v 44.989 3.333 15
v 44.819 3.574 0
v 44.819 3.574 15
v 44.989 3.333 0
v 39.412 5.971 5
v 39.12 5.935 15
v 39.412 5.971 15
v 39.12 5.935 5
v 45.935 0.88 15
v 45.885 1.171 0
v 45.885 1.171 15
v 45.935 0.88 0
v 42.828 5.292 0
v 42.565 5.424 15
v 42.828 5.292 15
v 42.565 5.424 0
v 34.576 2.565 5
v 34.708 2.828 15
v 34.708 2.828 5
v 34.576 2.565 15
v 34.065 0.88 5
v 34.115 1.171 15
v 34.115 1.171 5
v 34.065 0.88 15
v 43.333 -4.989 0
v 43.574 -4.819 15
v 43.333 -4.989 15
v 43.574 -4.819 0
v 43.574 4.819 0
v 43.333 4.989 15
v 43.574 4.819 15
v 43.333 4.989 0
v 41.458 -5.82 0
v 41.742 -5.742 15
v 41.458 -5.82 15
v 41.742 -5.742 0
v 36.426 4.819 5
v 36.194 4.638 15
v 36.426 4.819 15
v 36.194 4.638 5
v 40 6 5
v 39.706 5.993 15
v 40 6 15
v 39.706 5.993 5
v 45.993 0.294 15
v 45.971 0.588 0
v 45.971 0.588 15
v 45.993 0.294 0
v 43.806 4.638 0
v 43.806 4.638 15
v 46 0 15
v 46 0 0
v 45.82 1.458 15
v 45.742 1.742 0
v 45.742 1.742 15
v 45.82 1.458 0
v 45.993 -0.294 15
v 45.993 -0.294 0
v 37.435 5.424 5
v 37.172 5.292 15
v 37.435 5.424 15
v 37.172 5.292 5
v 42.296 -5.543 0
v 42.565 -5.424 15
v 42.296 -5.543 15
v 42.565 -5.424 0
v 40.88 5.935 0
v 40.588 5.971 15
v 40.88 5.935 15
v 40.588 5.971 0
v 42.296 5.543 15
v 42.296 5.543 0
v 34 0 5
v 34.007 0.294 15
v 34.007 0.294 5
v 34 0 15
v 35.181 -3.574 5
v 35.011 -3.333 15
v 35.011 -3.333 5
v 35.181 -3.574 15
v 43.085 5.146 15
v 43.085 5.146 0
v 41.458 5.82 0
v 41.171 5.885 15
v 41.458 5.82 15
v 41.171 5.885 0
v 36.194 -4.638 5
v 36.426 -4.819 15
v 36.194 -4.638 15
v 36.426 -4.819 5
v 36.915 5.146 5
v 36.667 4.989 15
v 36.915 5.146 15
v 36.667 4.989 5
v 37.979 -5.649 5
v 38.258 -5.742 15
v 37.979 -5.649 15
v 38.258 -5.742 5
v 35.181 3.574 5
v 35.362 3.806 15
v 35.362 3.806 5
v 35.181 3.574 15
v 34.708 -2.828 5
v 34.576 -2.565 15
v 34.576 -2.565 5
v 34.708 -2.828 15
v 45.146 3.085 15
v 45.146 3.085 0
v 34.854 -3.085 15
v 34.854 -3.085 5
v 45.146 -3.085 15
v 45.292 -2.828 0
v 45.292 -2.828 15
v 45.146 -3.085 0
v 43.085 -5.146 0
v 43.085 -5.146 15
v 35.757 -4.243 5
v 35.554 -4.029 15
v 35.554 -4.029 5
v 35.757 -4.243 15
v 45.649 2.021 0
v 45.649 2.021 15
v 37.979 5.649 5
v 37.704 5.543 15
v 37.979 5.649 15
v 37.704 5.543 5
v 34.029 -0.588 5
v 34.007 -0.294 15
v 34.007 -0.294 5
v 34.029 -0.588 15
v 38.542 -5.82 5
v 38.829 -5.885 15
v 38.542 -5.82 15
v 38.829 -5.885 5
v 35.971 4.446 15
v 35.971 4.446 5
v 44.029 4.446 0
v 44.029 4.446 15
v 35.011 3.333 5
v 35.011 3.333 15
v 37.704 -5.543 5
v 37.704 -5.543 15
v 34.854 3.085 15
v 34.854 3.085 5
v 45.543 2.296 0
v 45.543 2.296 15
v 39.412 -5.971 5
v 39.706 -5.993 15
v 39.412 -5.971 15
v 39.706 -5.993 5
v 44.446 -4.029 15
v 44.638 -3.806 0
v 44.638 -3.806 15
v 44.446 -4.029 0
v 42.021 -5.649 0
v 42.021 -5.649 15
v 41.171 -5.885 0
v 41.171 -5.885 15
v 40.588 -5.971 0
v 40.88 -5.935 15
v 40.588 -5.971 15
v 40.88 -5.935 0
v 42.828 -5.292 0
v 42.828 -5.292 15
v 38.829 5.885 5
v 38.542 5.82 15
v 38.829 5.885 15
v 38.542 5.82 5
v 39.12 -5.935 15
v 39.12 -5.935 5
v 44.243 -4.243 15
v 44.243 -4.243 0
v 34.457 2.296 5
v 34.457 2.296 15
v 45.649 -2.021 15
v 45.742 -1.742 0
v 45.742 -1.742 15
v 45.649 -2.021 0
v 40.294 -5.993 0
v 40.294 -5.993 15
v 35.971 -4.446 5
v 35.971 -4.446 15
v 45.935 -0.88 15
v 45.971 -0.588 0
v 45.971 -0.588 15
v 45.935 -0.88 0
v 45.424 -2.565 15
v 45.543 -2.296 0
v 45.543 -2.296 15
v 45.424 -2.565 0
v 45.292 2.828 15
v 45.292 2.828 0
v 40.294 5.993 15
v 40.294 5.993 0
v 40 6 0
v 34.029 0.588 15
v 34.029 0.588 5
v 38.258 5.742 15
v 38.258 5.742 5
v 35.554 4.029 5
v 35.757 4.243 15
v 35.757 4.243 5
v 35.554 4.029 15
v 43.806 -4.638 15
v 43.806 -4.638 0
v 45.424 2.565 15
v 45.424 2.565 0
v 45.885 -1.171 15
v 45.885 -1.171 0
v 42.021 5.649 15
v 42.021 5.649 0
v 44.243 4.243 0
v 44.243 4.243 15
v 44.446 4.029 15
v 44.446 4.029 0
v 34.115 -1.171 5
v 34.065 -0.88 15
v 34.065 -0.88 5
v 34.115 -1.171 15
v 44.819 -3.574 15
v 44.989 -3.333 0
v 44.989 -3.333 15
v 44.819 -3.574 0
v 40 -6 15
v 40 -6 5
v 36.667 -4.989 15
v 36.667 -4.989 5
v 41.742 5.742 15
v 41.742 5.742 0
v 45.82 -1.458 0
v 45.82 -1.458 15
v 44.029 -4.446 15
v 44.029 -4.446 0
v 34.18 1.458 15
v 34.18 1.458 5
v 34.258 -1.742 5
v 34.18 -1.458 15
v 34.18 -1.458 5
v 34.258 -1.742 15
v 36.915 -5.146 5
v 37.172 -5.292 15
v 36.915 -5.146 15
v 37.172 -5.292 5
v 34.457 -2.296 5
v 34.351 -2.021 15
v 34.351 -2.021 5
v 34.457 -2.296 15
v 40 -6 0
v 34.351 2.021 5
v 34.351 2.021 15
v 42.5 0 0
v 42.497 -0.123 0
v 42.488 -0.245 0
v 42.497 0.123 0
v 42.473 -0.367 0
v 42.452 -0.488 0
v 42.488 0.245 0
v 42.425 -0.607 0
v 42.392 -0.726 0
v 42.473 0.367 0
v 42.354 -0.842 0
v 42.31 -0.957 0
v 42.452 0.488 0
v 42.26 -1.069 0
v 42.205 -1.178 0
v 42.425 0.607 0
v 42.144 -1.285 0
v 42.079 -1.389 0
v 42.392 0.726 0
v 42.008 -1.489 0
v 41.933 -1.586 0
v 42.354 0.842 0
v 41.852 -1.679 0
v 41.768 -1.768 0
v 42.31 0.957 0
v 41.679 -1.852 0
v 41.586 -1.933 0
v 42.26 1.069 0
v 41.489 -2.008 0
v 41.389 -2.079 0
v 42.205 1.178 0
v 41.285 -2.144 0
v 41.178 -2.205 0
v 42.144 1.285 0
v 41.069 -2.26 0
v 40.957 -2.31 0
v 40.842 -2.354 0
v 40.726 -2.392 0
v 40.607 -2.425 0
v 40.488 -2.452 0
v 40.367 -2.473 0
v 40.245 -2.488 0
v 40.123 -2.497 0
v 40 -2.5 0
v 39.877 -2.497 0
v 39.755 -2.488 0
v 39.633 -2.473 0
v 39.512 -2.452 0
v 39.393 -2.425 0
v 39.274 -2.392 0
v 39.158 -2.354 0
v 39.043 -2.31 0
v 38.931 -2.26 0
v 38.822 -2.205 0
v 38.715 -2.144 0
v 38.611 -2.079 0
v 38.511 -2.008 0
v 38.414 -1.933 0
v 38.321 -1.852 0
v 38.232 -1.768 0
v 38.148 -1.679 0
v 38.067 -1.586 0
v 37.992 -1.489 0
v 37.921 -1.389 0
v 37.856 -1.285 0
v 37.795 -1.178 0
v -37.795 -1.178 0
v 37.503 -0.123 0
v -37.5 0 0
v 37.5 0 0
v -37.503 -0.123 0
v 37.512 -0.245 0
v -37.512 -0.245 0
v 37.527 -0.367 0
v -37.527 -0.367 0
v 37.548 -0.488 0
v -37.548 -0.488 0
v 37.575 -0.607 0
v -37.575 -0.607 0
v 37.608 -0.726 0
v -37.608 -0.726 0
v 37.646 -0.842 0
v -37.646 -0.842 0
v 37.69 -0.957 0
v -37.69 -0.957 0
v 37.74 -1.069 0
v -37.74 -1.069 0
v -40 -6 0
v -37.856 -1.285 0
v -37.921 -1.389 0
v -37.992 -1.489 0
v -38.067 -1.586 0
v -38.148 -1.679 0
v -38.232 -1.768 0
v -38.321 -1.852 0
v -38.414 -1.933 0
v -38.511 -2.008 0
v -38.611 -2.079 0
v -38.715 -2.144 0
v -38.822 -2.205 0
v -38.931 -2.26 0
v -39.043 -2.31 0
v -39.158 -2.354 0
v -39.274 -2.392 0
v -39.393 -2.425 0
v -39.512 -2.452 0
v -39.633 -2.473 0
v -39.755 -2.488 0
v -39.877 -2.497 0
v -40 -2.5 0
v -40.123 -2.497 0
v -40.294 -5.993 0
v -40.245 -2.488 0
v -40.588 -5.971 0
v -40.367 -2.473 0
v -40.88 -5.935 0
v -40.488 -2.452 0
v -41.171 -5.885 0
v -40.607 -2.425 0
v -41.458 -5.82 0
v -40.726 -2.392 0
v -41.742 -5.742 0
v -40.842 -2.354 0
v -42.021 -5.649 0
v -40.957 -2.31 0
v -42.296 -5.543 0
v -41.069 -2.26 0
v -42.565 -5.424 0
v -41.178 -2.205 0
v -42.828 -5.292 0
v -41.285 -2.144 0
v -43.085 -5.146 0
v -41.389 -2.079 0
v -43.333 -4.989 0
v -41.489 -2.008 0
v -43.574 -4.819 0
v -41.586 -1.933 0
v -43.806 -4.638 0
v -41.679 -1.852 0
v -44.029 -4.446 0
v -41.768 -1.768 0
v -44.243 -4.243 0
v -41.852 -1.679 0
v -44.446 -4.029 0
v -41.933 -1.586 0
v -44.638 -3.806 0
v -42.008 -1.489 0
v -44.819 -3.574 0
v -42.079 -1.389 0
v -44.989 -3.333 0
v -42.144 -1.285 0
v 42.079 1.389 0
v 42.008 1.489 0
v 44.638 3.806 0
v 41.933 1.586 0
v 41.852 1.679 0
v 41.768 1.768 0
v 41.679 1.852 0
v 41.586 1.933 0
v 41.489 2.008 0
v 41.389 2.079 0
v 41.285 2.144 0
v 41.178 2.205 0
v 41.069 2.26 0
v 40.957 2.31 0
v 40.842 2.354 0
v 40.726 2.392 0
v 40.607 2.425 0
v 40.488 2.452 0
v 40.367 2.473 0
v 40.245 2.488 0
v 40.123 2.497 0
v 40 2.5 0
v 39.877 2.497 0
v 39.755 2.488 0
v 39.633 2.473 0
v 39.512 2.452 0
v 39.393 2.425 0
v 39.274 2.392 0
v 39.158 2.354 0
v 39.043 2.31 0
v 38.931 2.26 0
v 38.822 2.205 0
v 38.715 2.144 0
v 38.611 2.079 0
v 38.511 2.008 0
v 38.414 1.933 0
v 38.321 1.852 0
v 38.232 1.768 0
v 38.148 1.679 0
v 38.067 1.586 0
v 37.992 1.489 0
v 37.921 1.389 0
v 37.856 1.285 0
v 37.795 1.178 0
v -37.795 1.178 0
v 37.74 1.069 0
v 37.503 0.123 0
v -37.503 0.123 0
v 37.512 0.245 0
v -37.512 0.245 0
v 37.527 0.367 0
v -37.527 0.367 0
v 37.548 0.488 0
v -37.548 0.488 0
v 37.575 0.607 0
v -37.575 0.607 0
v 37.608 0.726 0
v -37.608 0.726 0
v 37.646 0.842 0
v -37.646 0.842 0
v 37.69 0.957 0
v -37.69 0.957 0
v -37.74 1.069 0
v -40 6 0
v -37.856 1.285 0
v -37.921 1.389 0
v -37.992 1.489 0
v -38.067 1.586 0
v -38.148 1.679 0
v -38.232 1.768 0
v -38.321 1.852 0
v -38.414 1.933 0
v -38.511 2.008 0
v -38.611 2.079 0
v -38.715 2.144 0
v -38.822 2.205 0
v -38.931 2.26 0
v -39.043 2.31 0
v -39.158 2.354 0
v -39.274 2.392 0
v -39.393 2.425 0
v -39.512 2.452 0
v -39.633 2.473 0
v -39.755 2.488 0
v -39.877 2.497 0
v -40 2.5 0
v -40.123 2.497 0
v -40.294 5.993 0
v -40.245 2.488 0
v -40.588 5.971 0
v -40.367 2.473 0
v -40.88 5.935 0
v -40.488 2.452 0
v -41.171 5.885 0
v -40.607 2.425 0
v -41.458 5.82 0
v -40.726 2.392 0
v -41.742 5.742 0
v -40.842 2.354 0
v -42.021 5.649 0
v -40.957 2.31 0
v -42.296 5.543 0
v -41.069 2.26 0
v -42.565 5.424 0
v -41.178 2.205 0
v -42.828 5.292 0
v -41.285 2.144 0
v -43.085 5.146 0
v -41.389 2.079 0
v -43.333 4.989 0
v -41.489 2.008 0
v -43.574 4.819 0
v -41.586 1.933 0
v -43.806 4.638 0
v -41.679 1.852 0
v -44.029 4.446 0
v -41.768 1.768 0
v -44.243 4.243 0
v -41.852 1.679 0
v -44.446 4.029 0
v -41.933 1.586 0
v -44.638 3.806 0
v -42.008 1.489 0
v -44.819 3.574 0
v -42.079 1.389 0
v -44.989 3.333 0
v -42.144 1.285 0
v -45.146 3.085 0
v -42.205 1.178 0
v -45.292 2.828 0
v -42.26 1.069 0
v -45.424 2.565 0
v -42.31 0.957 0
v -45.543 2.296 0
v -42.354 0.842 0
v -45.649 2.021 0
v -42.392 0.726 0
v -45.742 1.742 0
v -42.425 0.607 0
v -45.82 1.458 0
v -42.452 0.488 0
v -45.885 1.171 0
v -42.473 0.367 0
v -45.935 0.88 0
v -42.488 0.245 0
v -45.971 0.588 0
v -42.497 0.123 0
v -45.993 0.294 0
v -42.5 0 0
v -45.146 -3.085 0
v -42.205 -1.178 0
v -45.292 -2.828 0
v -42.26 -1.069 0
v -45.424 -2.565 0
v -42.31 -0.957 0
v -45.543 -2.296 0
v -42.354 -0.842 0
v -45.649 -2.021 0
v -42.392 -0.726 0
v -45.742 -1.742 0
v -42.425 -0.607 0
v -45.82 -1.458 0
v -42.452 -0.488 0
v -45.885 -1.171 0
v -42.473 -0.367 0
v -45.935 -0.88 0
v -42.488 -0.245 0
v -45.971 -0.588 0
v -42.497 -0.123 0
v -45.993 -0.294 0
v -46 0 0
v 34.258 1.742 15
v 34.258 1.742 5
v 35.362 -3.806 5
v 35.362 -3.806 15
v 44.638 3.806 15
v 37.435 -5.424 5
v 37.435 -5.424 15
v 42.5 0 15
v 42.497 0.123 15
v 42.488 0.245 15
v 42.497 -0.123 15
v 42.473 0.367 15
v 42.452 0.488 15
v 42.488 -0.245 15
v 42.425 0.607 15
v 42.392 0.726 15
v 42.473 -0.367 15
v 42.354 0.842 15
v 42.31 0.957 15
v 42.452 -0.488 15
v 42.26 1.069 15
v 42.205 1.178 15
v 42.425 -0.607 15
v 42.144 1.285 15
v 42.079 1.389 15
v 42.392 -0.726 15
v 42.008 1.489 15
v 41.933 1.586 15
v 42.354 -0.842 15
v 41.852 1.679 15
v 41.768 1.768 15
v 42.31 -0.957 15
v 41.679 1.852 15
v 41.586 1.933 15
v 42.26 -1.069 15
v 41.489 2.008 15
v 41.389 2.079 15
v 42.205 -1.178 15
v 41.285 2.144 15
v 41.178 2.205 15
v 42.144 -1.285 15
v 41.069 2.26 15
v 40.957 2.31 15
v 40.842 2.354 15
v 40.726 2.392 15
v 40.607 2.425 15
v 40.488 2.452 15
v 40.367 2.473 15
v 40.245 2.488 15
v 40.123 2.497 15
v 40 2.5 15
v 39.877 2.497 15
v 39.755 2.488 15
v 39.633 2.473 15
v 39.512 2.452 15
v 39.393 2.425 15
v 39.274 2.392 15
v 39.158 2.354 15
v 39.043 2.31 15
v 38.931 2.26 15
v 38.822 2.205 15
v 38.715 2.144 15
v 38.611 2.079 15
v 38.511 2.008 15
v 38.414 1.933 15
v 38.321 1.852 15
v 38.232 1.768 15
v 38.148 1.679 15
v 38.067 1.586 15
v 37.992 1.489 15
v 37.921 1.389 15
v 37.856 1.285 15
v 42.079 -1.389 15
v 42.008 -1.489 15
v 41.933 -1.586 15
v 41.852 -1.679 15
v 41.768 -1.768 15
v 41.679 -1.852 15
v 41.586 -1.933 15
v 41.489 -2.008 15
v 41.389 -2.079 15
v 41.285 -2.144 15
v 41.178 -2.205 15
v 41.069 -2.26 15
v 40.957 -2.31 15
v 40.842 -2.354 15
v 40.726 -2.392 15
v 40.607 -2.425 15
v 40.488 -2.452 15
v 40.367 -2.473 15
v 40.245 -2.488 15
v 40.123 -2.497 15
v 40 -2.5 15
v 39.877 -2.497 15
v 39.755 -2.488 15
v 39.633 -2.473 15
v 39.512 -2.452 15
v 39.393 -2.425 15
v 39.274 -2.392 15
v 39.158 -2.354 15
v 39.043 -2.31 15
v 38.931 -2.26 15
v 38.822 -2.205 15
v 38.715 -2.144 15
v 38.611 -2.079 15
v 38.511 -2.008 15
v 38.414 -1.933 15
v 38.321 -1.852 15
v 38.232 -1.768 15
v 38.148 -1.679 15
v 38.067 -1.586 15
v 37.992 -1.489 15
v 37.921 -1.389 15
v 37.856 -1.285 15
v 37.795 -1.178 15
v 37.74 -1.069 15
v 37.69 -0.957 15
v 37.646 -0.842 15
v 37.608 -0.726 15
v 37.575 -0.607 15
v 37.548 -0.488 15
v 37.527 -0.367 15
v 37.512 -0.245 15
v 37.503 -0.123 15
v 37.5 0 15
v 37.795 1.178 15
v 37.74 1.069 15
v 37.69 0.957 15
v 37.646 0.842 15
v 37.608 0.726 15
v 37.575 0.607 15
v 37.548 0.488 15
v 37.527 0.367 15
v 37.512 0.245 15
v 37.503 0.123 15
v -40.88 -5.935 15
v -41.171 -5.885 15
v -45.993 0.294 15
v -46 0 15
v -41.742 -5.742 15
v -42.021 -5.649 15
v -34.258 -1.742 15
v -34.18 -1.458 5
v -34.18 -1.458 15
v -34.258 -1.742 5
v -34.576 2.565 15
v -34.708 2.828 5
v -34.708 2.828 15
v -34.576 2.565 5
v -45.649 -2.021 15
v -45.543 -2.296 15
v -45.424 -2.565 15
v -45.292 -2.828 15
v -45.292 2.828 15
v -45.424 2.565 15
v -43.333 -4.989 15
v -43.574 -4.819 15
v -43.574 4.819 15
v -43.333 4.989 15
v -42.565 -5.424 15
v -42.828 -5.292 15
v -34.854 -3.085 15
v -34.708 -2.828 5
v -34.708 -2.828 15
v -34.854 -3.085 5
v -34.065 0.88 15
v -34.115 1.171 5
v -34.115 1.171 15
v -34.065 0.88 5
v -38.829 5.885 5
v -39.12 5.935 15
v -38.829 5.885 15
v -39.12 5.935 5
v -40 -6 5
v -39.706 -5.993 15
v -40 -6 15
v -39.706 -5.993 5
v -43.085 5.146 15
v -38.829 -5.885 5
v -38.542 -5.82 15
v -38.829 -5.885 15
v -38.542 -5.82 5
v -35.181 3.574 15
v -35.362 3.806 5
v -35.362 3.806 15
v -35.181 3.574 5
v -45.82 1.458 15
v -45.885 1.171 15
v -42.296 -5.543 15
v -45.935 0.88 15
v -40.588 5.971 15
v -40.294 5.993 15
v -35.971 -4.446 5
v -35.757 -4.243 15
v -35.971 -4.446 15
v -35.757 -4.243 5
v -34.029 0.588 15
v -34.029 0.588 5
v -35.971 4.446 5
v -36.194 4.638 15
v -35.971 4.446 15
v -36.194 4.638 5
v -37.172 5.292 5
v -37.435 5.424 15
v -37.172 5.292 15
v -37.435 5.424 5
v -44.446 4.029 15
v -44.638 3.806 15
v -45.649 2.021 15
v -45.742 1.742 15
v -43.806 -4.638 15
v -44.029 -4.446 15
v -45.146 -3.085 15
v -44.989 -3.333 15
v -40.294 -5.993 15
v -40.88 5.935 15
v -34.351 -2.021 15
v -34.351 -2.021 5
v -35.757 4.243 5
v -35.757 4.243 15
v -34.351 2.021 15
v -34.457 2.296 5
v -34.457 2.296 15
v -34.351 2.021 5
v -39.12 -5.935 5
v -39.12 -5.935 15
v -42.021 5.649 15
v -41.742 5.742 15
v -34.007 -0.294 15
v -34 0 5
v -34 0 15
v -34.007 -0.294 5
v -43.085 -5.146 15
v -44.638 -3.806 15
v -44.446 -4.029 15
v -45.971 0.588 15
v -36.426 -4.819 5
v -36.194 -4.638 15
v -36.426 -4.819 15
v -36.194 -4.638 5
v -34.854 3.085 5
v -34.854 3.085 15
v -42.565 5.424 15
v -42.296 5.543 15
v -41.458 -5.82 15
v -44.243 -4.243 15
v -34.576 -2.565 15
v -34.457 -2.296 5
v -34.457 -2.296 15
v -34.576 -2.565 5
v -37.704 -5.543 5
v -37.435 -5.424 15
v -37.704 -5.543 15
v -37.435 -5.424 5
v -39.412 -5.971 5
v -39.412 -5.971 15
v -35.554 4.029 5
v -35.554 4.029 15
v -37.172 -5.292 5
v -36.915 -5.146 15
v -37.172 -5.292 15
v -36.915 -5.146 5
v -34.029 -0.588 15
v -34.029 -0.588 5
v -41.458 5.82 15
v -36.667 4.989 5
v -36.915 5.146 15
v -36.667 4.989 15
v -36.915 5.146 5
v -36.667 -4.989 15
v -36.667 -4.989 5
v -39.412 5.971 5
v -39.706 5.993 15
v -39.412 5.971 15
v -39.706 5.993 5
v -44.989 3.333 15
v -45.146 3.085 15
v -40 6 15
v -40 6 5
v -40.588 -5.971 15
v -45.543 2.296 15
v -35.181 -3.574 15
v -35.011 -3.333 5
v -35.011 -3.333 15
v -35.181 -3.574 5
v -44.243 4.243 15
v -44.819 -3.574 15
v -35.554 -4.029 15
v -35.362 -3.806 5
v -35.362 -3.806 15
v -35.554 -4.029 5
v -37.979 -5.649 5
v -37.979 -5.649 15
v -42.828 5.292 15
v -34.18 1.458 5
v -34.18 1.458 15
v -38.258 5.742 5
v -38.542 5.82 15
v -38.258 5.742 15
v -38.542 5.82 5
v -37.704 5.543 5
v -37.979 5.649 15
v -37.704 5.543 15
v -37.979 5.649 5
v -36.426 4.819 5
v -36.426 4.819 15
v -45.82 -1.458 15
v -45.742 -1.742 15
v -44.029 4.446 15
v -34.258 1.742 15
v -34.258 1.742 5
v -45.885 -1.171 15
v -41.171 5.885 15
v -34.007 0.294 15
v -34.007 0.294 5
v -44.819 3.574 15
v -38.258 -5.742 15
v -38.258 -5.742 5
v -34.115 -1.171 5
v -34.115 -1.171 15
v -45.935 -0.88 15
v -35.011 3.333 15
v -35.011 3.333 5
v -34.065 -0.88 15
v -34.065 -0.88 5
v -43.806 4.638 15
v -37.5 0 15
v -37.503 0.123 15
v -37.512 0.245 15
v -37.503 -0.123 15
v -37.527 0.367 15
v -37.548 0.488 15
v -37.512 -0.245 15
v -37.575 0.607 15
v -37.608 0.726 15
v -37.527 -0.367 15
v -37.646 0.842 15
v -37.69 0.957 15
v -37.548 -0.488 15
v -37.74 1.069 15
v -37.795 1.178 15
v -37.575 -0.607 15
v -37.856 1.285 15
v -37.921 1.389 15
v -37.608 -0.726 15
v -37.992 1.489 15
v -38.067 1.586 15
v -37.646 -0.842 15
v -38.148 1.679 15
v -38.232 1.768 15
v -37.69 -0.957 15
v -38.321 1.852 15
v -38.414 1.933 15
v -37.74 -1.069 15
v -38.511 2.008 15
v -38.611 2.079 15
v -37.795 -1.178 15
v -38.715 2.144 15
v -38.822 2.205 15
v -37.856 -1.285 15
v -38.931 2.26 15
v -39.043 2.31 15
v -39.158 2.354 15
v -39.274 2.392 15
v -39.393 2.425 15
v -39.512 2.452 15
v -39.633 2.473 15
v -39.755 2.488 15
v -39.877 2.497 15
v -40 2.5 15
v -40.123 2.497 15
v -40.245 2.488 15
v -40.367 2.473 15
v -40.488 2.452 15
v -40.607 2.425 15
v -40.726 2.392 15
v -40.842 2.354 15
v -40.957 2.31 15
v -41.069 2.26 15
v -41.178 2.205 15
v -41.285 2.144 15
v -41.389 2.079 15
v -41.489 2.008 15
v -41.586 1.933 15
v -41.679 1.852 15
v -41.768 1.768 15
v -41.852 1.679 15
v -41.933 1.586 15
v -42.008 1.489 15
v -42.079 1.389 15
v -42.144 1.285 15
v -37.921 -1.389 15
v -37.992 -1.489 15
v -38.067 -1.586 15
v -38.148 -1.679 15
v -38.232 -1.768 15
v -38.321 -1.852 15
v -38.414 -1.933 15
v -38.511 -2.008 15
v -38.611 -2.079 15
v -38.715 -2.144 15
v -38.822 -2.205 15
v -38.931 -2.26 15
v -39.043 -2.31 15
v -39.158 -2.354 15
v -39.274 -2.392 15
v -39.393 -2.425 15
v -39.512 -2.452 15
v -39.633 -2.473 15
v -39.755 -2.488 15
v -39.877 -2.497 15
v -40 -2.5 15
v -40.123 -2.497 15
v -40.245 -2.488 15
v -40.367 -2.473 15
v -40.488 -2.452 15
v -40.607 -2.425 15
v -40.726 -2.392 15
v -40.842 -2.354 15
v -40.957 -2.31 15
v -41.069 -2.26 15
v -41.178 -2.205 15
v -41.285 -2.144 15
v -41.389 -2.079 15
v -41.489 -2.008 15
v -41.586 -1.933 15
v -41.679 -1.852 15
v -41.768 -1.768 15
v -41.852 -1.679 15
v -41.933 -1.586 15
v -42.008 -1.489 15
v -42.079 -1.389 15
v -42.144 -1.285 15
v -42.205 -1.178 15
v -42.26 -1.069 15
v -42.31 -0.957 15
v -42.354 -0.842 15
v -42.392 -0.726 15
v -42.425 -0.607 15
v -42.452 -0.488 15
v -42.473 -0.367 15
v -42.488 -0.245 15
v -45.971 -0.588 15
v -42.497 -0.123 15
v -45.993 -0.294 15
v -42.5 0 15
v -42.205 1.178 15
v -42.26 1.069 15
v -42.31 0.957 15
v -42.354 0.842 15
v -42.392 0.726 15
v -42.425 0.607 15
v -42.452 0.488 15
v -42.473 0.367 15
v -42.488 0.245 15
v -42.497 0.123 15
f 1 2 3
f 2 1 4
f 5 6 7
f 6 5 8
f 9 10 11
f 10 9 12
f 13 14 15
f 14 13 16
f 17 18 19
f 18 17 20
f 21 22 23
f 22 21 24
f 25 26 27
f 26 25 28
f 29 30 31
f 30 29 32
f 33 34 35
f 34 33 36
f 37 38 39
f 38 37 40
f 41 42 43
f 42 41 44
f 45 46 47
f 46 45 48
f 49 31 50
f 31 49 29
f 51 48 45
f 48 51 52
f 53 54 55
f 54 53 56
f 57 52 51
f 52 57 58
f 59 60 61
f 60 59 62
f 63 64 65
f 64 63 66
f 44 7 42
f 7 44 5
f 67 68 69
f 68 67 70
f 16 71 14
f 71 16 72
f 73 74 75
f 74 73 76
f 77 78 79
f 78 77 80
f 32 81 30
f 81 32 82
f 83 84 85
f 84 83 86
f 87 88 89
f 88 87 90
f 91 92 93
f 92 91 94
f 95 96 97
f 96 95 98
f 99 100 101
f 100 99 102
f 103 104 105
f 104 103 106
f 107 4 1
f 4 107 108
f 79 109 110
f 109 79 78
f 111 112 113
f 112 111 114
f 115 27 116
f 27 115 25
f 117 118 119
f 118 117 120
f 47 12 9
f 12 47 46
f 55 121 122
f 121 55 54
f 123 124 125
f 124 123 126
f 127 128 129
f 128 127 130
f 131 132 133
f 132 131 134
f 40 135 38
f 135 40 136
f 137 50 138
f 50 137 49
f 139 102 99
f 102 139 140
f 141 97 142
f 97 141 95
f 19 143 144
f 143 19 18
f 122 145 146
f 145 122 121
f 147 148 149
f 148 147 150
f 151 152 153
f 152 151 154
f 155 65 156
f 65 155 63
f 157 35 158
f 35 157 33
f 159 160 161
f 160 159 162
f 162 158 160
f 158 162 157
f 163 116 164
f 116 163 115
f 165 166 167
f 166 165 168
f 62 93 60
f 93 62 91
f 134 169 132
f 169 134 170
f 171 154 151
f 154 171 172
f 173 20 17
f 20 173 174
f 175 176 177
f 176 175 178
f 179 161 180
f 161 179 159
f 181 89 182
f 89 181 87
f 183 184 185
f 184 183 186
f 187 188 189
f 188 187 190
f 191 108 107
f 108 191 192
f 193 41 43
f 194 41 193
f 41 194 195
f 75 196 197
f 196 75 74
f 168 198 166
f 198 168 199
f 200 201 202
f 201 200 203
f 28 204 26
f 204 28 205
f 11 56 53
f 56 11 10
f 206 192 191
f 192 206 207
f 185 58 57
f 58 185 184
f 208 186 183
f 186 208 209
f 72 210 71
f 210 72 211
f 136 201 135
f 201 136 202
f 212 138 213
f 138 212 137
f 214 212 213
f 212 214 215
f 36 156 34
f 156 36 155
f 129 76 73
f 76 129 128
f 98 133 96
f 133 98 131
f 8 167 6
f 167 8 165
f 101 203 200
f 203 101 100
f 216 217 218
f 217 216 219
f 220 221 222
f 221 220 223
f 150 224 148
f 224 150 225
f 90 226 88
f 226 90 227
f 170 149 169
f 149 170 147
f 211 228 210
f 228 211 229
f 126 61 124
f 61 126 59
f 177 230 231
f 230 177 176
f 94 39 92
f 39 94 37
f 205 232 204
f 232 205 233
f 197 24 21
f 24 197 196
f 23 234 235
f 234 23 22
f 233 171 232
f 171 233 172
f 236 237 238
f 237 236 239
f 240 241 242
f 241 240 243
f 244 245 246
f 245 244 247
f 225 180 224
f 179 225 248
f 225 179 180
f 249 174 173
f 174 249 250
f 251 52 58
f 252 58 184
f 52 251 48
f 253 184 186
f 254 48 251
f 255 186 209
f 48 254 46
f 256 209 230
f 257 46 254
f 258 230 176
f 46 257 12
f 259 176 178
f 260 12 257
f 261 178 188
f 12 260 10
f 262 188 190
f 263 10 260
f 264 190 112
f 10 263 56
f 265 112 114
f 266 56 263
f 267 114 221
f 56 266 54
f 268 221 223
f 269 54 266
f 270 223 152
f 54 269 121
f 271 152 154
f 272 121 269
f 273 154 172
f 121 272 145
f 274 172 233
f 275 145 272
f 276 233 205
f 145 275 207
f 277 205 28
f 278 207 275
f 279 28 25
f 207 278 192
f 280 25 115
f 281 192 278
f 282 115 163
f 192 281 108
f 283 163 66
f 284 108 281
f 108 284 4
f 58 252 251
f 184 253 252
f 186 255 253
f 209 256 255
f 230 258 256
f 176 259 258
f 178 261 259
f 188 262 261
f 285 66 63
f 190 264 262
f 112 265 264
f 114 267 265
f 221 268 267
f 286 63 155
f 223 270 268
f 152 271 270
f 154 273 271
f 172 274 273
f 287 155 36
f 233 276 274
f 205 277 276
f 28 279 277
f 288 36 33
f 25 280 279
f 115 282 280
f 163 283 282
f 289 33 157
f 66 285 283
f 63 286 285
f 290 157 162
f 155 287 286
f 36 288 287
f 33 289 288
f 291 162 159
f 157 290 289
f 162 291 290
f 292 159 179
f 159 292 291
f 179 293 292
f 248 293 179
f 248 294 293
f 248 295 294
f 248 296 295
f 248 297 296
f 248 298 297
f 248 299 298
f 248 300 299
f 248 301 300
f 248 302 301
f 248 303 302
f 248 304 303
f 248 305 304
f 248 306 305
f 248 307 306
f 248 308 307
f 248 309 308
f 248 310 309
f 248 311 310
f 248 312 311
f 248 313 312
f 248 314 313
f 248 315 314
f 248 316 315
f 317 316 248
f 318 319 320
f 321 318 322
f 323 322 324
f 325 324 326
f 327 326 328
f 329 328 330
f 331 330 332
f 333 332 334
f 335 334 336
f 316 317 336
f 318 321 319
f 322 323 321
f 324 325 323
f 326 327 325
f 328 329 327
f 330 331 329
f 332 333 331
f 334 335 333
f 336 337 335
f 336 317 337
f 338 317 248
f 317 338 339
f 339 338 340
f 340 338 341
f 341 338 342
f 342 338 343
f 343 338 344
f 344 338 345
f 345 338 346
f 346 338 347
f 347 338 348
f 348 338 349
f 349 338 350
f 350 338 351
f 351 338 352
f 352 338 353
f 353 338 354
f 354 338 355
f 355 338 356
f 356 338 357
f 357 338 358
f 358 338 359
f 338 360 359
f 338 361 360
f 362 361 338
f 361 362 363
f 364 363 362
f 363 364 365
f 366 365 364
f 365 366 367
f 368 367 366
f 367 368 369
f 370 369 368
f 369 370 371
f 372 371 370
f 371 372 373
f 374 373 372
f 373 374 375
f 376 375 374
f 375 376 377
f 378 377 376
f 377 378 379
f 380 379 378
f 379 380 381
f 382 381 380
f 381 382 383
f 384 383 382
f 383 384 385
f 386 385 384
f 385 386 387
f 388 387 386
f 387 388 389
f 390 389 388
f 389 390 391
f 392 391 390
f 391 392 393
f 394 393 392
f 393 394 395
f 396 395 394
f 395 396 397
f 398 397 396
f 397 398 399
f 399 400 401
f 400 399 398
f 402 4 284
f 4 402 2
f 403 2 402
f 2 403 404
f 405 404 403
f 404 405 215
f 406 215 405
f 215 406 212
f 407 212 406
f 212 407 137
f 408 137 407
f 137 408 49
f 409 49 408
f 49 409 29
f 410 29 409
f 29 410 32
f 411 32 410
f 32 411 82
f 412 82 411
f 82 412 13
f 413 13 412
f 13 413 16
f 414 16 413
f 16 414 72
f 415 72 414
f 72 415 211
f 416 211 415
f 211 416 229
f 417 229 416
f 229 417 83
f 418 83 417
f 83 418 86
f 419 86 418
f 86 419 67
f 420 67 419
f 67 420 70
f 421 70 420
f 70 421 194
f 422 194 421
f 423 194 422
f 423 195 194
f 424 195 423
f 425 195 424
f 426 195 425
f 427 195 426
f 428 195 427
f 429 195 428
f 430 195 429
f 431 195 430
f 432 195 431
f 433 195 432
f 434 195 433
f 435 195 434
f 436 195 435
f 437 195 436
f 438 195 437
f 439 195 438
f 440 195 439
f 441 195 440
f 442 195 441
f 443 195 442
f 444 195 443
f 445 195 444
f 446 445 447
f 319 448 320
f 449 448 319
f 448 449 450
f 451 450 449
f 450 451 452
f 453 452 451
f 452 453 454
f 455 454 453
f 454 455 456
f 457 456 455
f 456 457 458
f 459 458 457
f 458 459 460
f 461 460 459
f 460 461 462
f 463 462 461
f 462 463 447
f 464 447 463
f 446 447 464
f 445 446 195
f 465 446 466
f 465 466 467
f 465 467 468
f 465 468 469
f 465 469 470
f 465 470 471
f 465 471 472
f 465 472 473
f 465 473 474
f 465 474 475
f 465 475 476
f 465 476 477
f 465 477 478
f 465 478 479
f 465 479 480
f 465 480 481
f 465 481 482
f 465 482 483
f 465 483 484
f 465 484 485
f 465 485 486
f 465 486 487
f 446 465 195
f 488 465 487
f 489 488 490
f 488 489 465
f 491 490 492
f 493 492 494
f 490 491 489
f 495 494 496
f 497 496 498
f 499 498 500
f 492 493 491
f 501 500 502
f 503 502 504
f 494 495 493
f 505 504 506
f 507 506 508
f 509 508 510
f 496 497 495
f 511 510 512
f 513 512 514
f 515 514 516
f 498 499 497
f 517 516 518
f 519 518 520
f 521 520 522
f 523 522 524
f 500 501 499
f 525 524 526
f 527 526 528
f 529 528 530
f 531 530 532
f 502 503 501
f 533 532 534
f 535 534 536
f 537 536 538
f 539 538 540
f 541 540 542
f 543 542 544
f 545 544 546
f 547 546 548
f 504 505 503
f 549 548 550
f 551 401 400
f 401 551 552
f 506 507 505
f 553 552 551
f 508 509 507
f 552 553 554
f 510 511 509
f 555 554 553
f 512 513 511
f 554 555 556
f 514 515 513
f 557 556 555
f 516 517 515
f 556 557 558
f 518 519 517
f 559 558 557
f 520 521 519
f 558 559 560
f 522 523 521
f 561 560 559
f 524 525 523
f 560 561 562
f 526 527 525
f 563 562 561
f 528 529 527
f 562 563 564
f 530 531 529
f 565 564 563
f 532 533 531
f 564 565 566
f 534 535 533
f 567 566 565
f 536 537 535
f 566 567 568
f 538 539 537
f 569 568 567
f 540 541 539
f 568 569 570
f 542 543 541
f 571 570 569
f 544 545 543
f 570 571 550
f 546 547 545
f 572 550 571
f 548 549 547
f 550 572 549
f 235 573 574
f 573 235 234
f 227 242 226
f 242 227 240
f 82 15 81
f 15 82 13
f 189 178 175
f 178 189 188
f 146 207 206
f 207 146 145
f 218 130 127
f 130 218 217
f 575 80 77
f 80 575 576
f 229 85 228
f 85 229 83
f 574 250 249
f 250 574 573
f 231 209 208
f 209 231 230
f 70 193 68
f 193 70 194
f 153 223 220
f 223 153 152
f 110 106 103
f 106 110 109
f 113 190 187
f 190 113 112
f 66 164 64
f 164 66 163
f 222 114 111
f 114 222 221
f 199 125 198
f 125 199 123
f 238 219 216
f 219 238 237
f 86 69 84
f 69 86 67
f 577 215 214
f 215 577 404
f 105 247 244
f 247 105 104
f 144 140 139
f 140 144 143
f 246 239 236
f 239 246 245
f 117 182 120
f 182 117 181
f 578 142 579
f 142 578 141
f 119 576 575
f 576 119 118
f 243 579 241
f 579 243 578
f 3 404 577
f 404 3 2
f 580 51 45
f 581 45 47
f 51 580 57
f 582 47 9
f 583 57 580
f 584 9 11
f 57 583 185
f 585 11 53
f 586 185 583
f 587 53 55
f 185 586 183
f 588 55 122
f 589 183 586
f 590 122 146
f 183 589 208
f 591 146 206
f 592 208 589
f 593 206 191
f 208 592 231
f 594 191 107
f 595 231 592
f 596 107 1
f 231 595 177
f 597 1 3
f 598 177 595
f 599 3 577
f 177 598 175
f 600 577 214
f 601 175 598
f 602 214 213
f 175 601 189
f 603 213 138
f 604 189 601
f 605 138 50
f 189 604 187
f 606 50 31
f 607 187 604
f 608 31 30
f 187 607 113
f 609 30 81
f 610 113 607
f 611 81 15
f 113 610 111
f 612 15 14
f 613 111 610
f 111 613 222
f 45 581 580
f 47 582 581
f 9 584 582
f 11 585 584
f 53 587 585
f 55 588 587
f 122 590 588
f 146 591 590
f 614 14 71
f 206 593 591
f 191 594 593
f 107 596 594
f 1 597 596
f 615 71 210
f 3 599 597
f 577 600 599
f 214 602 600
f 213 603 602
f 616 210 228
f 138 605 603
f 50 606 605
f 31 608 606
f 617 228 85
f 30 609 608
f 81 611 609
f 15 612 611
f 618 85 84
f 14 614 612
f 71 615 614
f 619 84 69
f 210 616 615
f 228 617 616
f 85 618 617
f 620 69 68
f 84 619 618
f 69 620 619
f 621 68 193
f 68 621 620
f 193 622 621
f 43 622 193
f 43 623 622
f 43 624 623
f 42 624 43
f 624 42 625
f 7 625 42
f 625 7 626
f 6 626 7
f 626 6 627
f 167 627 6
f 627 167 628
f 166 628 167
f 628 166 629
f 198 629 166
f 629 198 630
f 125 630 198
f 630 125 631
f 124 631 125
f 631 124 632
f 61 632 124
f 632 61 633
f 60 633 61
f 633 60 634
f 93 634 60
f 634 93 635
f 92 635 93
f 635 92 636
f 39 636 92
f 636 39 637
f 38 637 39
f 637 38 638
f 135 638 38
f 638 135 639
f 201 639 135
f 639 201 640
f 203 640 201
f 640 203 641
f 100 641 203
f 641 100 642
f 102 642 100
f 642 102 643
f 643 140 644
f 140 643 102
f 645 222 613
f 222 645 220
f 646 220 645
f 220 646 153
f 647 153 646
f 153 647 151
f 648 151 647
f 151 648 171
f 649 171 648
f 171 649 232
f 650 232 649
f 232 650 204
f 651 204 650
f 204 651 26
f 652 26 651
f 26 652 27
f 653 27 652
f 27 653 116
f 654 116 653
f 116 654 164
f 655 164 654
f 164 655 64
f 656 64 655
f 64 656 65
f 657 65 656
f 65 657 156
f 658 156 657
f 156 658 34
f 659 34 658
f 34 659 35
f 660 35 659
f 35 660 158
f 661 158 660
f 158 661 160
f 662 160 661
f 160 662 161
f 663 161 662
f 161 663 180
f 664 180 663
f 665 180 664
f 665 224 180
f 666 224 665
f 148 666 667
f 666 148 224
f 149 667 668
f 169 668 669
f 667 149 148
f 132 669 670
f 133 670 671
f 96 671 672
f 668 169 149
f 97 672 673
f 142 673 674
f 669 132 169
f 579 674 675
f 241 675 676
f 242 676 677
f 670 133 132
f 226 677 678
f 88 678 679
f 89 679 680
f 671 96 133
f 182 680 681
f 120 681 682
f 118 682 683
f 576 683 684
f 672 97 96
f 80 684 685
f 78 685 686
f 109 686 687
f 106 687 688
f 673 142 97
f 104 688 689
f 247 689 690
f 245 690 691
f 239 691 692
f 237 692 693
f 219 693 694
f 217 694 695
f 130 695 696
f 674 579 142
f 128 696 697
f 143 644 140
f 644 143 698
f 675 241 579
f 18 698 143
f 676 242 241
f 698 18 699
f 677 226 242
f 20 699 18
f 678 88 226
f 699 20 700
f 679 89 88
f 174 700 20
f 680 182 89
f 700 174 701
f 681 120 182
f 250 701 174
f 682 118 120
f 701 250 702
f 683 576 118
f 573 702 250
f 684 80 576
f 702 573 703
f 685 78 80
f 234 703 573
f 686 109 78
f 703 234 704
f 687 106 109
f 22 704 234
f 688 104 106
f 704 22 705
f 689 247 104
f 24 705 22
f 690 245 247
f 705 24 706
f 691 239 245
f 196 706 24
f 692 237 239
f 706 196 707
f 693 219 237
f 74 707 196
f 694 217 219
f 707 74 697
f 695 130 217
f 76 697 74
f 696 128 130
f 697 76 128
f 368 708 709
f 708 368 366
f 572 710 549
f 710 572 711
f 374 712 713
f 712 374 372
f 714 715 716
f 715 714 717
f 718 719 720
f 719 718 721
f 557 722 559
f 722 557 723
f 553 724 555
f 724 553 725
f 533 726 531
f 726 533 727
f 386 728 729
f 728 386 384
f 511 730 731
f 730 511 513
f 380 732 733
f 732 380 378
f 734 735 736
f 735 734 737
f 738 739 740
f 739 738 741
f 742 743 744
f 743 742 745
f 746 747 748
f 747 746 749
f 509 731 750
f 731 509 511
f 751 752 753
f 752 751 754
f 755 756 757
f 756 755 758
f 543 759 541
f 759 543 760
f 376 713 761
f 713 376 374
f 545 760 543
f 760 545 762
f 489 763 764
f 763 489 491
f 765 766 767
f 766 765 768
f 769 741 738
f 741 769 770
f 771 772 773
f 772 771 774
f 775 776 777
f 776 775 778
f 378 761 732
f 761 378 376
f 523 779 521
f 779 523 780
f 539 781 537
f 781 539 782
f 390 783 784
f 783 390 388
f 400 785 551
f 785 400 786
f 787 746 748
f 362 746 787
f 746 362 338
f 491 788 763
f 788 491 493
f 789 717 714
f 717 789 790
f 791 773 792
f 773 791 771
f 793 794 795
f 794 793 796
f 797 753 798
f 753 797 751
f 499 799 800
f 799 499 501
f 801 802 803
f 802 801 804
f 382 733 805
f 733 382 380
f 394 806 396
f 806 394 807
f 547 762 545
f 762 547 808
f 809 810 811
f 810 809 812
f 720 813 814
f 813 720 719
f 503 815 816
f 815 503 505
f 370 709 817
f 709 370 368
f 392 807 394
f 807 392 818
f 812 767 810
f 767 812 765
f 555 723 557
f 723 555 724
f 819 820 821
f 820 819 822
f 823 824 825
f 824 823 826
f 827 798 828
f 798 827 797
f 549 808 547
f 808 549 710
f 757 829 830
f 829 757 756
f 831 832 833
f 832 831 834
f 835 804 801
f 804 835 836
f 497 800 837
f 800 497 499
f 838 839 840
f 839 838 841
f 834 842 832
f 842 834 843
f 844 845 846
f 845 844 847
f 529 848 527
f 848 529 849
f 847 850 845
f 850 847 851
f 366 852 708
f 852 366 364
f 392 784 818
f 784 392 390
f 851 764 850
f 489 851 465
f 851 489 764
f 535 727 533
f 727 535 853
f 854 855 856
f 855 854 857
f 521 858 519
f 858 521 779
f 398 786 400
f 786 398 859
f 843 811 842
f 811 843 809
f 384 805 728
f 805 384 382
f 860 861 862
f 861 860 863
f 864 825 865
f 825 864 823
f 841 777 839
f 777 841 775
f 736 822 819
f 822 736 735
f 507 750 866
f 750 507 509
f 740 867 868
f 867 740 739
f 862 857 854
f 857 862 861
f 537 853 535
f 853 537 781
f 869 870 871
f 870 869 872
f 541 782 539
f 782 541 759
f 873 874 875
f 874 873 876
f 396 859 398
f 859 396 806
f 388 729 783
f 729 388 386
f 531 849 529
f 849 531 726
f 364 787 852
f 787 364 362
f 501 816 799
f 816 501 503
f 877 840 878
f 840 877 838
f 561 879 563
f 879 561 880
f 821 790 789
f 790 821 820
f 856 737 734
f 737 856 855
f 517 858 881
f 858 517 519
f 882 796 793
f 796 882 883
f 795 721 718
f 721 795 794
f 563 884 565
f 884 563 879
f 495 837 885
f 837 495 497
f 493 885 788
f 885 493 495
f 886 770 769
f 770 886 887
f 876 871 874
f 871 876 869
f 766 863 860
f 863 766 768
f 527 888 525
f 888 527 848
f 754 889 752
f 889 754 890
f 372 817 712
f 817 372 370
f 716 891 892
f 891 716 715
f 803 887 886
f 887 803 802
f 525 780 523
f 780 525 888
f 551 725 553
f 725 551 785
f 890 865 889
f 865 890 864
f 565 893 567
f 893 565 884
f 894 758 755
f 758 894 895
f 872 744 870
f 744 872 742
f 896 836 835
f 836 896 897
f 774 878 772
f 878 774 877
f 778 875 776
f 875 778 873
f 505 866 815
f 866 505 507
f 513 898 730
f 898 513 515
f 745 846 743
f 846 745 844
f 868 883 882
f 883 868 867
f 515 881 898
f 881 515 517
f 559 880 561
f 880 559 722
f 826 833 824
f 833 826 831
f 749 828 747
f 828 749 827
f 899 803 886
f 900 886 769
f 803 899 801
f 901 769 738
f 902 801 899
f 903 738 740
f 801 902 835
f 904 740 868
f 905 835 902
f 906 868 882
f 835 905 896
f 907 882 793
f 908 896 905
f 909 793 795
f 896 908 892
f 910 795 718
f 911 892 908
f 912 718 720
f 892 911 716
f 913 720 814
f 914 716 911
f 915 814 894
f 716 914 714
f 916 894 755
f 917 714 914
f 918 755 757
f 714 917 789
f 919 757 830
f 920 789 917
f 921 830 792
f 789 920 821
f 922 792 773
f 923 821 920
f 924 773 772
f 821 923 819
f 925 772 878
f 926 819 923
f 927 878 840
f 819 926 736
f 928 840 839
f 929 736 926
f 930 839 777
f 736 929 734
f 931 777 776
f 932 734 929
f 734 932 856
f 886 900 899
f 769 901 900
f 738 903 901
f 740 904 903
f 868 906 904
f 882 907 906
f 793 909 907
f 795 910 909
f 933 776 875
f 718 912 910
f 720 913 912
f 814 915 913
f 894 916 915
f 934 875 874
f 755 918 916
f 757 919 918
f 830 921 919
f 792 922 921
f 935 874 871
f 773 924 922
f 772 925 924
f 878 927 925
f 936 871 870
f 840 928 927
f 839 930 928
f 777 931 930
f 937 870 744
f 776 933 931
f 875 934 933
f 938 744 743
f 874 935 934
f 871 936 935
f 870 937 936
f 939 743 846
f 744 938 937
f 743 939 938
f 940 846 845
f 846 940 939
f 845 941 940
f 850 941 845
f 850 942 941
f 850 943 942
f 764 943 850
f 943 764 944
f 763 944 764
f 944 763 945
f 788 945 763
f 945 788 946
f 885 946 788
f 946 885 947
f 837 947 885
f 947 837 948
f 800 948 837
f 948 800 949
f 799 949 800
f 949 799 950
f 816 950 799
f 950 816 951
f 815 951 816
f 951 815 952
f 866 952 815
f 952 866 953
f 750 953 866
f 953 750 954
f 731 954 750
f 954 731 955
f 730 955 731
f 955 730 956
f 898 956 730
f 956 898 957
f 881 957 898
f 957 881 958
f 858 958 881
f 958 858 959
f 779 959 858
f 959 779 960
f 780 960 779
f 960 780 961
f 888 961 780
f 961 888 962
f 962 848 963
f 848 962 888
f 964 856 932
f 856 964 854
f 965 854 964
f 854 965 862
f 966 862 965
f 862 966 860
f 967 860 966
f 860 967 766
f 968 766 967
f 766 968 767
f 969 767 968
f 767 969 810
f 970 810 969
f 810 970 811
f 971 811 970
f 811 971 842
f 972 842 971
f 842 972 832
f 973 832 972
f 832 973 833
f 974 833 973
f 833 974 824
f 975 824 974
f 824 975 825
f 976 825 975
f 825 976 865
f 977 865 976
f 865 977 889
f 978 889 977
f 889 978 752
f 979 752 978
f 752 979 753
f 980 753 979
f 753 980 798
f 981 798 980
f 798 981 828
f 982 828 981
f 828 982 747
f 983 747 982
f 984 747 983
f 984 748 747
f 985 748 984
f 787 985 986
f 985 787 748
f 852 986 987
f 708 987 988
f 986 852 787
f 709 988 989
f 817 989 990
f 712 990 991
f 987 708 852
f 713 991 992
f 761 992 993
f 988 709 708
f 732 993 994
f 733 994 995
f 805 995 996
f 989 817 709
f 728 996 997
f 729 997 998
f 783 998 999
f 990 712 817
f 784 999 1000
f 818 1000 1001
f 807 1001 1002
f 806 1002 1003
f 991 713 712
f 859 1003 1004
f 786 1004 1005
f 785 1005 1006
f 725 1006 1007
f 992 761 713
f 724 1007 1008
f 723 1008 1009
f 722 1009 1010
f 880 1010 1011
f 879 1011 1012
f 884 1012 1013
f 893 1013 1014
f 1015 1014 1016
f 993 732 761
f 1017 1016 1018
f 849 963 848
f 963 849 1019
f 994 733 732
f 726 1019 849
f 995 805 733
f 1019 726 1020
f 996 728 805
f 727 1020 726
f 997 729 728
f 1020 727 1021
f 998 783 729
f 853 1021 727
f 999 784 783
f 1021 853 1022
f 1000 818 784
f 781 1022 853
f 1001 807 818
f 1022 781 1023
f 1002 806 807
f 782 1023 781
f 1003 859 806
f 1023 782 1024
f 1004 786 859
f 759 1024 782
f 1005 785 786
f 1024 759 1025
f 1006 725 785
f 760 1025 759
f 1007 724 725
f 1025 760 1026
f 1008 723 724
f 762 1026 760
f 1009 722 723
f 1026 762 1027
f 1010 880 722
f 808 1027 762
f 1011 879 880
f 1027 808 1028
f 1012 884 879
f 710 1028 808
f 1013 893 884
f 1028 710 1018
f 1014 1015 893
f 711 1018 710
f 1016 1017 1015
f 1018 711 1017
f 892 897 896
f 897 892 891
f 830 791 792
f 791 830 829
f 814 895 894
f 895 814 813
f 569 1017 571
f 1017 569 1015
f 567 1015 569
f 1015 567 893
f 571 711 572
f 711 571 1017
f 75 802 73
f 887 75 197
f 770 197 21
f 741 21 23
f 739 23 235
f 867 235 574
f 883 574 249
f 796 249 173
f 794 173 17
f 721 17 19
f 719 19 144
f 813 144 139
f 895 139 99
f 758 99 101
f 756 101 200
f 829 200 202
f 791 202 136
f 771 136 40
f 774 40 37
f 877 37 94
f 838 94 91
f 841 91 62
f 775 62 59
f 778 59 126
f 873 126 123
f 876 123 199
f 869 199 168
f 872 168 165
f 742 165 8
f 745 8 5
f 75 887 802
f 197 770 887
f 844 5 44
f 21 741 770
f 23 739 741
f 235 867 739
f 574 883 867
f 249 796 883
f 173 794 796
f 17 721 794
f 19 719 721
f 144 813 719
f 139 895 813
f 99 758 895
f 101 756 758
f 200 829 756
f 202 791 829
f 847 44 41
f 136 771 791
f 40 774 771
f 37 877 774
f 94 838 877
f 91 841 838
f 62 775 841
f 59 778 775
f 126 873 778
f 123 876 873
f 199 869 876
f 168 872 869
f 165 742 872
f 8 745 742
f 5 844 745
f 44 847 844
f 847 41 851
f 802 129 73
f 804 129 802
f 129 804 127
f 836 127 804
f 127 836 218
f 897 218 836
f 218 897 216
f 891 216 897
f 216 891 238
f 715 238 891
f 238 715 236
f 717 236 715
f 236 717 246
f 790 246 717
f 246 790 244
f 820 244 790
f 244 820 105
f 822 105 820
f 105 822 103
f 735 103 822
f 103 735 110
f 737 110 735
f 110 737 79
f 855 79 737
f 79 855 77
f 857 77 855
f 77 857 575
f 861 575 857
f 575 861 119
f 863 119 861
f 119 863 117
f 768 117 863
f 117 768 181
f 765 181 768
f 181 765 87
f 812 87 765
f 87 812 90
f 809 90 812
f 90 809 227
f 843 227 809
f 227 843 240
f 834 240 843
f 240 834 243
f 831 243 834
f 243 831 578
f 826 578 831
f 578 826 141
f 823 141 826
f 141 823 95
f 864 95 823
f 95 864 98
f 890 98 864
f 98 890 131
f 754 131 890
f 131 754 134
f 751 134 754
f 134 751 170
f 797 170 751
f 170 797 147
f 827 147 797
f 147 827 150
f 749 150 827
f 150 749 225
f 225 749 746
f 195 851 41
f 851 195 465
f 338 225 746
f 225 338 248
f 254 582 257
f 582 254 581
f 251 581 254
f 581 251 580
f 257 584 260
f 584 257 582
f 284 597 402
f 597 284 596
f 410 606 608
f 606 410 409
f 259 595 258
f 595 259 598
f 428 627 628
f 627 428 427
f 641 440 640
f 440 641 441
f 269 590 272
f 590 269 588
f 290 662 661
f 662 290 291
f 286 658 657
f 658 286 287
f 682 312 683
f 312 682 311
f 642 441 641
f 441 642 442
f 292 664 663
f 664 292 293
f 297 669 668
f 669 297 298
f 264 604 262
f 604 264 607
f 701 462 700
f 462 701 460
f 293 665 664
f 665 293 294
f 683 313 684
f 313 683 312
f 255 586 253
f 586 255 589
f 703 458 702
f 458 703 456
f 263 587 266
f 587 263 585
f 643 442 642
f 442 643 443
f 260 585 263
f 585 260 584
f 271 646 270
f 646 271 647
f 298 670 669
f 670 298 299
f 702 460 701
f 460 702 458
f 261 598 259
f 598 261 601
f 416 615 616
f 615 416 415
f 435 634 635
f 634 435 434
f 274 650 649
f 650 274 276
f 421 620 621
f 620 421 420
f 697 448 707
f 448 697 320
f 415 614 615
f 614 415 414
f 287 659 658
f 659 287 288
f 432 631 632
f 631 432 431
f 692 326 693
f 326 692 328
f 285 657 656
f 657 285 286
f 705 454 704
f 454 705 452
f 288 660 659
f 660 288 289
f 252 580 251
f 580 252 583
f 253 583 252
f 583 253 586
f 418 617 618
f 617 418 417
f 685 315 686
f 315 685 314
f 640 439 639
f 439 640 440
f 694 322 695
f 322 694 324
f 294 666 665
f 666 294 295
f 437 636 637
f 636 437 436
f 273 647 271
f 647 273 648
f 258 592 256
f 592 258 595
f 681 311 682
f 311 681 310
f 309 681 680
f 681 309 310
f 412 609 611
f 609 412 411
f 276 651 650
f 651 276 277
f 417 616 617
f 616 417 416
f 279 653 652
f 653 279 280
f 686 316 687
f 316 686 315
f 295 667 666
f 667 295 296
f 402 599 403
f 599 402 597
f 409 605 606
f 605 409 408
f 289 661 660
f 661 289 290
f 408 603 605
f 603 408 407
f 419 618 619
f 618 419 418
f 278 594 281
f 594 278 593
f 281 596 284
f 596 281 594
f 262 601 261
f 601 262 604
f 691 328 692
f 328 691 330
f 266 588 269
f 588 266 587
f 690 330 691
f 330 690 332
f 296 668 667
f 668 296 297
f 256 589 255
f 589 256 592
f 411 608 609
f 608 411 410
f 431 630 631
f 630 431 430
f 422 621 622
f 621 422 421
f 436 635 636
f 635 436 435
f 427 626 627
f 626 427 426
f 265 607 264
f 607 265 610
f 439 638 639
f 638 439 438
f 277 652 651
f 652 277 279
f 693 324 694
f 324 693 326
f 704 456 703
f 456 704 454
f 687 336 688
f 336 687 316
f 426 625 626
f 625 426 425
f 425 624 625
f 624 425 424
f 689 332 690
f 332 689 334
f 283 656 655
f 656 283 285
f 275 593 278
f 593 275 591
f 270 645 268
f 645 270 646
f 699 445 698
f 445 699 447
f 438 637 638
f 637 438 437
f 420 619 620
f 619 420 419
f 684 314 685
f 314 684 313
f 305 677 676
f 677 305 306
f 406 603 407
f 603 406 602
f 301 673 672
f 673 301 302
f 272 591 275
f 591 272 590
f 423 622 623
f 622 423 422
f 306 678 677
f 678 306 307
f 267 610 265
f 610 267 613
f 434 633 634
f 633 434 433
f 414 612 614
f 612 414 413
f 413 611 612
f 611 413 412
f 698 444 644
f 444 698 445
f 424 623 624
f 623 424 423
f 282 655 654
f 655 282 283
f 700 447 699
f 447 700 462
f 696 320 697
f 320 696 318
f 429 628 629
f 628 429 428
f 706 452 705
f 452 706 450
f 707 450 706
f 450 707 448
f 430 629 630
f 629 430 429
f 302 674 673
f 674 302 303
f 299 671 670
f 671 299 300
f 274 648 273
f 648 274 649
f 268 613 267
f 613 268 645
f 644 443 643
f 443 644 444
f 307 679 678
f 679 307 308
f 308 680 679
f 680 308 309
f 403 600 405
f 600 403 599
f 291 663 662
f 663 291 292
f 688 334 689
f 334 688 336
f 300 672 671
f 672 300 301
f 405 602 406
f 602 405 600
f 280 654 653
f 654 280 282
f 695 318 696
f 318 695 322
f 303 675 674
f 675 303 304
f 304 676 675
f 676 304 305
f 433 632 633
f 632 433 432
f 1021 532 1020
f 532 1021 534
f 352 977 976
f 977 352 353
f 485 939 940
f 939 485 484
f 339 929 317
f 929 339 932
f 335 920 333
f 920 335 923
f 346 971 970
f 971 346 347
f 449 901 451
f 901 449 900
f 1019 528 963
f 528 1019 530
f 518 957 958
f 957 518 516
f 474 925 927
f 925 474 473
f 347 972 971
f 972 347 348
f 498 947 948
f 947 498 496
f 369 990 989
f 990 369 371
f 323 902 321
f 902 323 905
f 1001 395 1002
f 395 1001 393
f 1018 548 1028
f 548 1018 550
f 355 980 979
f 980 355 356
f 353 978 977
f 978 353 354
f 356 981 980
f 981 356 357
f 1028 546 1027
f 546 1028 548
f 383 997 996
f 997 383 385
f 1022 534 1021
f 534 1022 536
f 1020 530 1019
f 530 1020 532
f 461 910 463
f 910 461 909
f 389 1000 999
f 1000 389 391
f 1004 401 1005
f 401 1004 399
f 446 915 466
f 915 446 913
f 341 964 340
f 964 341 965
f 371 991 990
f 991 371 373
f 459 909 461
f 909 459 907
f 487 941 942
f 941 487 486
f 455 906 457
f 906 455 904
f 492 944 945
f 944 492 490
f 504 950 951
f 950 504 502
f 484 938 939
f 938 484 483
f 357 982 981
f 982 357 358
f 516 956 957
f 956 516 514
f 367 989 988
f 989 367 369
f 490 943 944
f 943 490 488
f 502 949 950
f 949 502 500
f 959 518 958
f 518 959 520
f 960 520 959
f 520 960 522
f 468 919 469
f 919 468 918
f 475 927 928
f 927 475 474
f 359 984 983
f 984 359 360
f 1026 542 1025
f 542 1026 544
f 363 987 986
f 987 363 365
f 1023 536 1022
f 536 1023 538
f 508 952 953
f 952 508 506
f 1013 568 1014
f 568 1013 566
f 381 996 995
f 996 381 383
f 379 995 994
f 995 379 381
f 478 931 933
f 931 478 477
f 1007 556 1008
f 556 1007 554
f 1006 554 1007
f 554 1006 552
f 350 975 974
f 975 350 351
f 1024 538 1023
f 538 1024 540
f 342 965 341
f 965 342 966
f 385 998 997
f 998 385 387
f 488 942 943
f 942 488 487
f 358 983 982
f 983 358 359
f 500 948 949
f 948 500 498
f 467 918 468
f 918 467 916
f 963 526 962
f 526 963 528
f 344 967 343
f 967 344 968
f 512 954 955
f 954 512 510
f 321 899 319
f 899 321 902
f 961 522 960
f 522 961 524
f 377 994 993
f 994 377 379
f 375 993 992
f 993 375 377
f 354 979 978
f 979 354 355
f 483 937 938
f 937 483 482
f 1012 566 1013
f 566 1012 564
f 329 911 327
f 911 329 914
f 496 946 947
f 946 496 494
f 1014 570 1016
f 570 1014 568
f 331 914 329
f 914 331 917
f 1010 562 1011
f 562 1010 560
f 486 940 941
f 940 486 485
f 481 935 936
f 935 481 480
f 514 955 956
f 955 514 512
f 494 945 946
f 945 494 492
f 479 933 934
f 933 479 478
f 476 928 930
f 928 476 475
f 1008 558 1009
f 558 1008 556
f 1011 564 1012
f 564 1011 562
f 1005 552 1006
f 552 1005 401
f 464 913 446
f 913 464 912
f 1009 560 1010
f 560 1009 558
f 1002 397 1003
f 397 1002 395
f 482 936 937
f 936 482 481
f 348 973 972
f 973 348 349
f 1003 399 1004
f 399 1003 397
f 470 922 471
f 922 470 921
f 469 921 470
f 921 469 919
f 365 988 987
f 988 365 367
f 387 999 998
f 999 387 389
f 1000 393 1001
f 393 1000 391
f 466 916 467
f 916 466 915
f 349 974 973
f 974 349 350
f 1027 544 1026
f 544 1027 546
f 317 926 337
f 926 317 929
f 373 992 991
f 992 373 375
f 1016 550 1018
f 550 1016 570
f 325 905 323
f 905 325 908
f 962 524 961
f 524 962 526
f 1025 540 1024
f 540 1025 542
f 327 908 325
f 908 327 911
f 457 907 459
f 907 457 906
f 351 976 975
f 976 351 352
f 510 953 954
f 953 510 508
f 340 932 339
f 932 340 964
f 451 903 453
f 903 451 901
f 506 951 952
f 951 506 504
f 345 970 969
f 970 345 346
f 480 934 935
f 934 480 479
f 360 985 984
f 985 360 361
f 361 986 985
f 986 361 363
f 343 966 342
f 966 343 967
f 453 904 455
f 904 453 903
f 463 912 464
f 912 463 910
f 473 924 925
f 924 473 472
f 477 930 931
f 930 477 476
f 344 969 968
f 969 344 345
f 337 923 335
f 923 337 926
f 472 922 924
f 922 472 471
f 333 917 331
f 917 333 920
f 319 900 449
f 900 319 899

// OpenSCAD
// Bracket
mount_diameter = 12;    // x
mount_height   = 15;
hole_diameter  =  5; 
span           = 80;

module mirror2(v) {
    children();
    mirror(v) children();
}

// OpenSCAD stuff
$fn=128;

module mount() {
   difference() {
     union() {
         mirror2() translate([span/2,0,0]) cylinder(h=mount_height,d=mount_diameter); 
         translate([0,0,2.5]) cube([span,mount_diameter,5], center=true);}
         mirror2() translate([span/2,0,0])cylinder(h=2*mount_height, d=hole_diameter);    
    }
}


mount();
   
    
